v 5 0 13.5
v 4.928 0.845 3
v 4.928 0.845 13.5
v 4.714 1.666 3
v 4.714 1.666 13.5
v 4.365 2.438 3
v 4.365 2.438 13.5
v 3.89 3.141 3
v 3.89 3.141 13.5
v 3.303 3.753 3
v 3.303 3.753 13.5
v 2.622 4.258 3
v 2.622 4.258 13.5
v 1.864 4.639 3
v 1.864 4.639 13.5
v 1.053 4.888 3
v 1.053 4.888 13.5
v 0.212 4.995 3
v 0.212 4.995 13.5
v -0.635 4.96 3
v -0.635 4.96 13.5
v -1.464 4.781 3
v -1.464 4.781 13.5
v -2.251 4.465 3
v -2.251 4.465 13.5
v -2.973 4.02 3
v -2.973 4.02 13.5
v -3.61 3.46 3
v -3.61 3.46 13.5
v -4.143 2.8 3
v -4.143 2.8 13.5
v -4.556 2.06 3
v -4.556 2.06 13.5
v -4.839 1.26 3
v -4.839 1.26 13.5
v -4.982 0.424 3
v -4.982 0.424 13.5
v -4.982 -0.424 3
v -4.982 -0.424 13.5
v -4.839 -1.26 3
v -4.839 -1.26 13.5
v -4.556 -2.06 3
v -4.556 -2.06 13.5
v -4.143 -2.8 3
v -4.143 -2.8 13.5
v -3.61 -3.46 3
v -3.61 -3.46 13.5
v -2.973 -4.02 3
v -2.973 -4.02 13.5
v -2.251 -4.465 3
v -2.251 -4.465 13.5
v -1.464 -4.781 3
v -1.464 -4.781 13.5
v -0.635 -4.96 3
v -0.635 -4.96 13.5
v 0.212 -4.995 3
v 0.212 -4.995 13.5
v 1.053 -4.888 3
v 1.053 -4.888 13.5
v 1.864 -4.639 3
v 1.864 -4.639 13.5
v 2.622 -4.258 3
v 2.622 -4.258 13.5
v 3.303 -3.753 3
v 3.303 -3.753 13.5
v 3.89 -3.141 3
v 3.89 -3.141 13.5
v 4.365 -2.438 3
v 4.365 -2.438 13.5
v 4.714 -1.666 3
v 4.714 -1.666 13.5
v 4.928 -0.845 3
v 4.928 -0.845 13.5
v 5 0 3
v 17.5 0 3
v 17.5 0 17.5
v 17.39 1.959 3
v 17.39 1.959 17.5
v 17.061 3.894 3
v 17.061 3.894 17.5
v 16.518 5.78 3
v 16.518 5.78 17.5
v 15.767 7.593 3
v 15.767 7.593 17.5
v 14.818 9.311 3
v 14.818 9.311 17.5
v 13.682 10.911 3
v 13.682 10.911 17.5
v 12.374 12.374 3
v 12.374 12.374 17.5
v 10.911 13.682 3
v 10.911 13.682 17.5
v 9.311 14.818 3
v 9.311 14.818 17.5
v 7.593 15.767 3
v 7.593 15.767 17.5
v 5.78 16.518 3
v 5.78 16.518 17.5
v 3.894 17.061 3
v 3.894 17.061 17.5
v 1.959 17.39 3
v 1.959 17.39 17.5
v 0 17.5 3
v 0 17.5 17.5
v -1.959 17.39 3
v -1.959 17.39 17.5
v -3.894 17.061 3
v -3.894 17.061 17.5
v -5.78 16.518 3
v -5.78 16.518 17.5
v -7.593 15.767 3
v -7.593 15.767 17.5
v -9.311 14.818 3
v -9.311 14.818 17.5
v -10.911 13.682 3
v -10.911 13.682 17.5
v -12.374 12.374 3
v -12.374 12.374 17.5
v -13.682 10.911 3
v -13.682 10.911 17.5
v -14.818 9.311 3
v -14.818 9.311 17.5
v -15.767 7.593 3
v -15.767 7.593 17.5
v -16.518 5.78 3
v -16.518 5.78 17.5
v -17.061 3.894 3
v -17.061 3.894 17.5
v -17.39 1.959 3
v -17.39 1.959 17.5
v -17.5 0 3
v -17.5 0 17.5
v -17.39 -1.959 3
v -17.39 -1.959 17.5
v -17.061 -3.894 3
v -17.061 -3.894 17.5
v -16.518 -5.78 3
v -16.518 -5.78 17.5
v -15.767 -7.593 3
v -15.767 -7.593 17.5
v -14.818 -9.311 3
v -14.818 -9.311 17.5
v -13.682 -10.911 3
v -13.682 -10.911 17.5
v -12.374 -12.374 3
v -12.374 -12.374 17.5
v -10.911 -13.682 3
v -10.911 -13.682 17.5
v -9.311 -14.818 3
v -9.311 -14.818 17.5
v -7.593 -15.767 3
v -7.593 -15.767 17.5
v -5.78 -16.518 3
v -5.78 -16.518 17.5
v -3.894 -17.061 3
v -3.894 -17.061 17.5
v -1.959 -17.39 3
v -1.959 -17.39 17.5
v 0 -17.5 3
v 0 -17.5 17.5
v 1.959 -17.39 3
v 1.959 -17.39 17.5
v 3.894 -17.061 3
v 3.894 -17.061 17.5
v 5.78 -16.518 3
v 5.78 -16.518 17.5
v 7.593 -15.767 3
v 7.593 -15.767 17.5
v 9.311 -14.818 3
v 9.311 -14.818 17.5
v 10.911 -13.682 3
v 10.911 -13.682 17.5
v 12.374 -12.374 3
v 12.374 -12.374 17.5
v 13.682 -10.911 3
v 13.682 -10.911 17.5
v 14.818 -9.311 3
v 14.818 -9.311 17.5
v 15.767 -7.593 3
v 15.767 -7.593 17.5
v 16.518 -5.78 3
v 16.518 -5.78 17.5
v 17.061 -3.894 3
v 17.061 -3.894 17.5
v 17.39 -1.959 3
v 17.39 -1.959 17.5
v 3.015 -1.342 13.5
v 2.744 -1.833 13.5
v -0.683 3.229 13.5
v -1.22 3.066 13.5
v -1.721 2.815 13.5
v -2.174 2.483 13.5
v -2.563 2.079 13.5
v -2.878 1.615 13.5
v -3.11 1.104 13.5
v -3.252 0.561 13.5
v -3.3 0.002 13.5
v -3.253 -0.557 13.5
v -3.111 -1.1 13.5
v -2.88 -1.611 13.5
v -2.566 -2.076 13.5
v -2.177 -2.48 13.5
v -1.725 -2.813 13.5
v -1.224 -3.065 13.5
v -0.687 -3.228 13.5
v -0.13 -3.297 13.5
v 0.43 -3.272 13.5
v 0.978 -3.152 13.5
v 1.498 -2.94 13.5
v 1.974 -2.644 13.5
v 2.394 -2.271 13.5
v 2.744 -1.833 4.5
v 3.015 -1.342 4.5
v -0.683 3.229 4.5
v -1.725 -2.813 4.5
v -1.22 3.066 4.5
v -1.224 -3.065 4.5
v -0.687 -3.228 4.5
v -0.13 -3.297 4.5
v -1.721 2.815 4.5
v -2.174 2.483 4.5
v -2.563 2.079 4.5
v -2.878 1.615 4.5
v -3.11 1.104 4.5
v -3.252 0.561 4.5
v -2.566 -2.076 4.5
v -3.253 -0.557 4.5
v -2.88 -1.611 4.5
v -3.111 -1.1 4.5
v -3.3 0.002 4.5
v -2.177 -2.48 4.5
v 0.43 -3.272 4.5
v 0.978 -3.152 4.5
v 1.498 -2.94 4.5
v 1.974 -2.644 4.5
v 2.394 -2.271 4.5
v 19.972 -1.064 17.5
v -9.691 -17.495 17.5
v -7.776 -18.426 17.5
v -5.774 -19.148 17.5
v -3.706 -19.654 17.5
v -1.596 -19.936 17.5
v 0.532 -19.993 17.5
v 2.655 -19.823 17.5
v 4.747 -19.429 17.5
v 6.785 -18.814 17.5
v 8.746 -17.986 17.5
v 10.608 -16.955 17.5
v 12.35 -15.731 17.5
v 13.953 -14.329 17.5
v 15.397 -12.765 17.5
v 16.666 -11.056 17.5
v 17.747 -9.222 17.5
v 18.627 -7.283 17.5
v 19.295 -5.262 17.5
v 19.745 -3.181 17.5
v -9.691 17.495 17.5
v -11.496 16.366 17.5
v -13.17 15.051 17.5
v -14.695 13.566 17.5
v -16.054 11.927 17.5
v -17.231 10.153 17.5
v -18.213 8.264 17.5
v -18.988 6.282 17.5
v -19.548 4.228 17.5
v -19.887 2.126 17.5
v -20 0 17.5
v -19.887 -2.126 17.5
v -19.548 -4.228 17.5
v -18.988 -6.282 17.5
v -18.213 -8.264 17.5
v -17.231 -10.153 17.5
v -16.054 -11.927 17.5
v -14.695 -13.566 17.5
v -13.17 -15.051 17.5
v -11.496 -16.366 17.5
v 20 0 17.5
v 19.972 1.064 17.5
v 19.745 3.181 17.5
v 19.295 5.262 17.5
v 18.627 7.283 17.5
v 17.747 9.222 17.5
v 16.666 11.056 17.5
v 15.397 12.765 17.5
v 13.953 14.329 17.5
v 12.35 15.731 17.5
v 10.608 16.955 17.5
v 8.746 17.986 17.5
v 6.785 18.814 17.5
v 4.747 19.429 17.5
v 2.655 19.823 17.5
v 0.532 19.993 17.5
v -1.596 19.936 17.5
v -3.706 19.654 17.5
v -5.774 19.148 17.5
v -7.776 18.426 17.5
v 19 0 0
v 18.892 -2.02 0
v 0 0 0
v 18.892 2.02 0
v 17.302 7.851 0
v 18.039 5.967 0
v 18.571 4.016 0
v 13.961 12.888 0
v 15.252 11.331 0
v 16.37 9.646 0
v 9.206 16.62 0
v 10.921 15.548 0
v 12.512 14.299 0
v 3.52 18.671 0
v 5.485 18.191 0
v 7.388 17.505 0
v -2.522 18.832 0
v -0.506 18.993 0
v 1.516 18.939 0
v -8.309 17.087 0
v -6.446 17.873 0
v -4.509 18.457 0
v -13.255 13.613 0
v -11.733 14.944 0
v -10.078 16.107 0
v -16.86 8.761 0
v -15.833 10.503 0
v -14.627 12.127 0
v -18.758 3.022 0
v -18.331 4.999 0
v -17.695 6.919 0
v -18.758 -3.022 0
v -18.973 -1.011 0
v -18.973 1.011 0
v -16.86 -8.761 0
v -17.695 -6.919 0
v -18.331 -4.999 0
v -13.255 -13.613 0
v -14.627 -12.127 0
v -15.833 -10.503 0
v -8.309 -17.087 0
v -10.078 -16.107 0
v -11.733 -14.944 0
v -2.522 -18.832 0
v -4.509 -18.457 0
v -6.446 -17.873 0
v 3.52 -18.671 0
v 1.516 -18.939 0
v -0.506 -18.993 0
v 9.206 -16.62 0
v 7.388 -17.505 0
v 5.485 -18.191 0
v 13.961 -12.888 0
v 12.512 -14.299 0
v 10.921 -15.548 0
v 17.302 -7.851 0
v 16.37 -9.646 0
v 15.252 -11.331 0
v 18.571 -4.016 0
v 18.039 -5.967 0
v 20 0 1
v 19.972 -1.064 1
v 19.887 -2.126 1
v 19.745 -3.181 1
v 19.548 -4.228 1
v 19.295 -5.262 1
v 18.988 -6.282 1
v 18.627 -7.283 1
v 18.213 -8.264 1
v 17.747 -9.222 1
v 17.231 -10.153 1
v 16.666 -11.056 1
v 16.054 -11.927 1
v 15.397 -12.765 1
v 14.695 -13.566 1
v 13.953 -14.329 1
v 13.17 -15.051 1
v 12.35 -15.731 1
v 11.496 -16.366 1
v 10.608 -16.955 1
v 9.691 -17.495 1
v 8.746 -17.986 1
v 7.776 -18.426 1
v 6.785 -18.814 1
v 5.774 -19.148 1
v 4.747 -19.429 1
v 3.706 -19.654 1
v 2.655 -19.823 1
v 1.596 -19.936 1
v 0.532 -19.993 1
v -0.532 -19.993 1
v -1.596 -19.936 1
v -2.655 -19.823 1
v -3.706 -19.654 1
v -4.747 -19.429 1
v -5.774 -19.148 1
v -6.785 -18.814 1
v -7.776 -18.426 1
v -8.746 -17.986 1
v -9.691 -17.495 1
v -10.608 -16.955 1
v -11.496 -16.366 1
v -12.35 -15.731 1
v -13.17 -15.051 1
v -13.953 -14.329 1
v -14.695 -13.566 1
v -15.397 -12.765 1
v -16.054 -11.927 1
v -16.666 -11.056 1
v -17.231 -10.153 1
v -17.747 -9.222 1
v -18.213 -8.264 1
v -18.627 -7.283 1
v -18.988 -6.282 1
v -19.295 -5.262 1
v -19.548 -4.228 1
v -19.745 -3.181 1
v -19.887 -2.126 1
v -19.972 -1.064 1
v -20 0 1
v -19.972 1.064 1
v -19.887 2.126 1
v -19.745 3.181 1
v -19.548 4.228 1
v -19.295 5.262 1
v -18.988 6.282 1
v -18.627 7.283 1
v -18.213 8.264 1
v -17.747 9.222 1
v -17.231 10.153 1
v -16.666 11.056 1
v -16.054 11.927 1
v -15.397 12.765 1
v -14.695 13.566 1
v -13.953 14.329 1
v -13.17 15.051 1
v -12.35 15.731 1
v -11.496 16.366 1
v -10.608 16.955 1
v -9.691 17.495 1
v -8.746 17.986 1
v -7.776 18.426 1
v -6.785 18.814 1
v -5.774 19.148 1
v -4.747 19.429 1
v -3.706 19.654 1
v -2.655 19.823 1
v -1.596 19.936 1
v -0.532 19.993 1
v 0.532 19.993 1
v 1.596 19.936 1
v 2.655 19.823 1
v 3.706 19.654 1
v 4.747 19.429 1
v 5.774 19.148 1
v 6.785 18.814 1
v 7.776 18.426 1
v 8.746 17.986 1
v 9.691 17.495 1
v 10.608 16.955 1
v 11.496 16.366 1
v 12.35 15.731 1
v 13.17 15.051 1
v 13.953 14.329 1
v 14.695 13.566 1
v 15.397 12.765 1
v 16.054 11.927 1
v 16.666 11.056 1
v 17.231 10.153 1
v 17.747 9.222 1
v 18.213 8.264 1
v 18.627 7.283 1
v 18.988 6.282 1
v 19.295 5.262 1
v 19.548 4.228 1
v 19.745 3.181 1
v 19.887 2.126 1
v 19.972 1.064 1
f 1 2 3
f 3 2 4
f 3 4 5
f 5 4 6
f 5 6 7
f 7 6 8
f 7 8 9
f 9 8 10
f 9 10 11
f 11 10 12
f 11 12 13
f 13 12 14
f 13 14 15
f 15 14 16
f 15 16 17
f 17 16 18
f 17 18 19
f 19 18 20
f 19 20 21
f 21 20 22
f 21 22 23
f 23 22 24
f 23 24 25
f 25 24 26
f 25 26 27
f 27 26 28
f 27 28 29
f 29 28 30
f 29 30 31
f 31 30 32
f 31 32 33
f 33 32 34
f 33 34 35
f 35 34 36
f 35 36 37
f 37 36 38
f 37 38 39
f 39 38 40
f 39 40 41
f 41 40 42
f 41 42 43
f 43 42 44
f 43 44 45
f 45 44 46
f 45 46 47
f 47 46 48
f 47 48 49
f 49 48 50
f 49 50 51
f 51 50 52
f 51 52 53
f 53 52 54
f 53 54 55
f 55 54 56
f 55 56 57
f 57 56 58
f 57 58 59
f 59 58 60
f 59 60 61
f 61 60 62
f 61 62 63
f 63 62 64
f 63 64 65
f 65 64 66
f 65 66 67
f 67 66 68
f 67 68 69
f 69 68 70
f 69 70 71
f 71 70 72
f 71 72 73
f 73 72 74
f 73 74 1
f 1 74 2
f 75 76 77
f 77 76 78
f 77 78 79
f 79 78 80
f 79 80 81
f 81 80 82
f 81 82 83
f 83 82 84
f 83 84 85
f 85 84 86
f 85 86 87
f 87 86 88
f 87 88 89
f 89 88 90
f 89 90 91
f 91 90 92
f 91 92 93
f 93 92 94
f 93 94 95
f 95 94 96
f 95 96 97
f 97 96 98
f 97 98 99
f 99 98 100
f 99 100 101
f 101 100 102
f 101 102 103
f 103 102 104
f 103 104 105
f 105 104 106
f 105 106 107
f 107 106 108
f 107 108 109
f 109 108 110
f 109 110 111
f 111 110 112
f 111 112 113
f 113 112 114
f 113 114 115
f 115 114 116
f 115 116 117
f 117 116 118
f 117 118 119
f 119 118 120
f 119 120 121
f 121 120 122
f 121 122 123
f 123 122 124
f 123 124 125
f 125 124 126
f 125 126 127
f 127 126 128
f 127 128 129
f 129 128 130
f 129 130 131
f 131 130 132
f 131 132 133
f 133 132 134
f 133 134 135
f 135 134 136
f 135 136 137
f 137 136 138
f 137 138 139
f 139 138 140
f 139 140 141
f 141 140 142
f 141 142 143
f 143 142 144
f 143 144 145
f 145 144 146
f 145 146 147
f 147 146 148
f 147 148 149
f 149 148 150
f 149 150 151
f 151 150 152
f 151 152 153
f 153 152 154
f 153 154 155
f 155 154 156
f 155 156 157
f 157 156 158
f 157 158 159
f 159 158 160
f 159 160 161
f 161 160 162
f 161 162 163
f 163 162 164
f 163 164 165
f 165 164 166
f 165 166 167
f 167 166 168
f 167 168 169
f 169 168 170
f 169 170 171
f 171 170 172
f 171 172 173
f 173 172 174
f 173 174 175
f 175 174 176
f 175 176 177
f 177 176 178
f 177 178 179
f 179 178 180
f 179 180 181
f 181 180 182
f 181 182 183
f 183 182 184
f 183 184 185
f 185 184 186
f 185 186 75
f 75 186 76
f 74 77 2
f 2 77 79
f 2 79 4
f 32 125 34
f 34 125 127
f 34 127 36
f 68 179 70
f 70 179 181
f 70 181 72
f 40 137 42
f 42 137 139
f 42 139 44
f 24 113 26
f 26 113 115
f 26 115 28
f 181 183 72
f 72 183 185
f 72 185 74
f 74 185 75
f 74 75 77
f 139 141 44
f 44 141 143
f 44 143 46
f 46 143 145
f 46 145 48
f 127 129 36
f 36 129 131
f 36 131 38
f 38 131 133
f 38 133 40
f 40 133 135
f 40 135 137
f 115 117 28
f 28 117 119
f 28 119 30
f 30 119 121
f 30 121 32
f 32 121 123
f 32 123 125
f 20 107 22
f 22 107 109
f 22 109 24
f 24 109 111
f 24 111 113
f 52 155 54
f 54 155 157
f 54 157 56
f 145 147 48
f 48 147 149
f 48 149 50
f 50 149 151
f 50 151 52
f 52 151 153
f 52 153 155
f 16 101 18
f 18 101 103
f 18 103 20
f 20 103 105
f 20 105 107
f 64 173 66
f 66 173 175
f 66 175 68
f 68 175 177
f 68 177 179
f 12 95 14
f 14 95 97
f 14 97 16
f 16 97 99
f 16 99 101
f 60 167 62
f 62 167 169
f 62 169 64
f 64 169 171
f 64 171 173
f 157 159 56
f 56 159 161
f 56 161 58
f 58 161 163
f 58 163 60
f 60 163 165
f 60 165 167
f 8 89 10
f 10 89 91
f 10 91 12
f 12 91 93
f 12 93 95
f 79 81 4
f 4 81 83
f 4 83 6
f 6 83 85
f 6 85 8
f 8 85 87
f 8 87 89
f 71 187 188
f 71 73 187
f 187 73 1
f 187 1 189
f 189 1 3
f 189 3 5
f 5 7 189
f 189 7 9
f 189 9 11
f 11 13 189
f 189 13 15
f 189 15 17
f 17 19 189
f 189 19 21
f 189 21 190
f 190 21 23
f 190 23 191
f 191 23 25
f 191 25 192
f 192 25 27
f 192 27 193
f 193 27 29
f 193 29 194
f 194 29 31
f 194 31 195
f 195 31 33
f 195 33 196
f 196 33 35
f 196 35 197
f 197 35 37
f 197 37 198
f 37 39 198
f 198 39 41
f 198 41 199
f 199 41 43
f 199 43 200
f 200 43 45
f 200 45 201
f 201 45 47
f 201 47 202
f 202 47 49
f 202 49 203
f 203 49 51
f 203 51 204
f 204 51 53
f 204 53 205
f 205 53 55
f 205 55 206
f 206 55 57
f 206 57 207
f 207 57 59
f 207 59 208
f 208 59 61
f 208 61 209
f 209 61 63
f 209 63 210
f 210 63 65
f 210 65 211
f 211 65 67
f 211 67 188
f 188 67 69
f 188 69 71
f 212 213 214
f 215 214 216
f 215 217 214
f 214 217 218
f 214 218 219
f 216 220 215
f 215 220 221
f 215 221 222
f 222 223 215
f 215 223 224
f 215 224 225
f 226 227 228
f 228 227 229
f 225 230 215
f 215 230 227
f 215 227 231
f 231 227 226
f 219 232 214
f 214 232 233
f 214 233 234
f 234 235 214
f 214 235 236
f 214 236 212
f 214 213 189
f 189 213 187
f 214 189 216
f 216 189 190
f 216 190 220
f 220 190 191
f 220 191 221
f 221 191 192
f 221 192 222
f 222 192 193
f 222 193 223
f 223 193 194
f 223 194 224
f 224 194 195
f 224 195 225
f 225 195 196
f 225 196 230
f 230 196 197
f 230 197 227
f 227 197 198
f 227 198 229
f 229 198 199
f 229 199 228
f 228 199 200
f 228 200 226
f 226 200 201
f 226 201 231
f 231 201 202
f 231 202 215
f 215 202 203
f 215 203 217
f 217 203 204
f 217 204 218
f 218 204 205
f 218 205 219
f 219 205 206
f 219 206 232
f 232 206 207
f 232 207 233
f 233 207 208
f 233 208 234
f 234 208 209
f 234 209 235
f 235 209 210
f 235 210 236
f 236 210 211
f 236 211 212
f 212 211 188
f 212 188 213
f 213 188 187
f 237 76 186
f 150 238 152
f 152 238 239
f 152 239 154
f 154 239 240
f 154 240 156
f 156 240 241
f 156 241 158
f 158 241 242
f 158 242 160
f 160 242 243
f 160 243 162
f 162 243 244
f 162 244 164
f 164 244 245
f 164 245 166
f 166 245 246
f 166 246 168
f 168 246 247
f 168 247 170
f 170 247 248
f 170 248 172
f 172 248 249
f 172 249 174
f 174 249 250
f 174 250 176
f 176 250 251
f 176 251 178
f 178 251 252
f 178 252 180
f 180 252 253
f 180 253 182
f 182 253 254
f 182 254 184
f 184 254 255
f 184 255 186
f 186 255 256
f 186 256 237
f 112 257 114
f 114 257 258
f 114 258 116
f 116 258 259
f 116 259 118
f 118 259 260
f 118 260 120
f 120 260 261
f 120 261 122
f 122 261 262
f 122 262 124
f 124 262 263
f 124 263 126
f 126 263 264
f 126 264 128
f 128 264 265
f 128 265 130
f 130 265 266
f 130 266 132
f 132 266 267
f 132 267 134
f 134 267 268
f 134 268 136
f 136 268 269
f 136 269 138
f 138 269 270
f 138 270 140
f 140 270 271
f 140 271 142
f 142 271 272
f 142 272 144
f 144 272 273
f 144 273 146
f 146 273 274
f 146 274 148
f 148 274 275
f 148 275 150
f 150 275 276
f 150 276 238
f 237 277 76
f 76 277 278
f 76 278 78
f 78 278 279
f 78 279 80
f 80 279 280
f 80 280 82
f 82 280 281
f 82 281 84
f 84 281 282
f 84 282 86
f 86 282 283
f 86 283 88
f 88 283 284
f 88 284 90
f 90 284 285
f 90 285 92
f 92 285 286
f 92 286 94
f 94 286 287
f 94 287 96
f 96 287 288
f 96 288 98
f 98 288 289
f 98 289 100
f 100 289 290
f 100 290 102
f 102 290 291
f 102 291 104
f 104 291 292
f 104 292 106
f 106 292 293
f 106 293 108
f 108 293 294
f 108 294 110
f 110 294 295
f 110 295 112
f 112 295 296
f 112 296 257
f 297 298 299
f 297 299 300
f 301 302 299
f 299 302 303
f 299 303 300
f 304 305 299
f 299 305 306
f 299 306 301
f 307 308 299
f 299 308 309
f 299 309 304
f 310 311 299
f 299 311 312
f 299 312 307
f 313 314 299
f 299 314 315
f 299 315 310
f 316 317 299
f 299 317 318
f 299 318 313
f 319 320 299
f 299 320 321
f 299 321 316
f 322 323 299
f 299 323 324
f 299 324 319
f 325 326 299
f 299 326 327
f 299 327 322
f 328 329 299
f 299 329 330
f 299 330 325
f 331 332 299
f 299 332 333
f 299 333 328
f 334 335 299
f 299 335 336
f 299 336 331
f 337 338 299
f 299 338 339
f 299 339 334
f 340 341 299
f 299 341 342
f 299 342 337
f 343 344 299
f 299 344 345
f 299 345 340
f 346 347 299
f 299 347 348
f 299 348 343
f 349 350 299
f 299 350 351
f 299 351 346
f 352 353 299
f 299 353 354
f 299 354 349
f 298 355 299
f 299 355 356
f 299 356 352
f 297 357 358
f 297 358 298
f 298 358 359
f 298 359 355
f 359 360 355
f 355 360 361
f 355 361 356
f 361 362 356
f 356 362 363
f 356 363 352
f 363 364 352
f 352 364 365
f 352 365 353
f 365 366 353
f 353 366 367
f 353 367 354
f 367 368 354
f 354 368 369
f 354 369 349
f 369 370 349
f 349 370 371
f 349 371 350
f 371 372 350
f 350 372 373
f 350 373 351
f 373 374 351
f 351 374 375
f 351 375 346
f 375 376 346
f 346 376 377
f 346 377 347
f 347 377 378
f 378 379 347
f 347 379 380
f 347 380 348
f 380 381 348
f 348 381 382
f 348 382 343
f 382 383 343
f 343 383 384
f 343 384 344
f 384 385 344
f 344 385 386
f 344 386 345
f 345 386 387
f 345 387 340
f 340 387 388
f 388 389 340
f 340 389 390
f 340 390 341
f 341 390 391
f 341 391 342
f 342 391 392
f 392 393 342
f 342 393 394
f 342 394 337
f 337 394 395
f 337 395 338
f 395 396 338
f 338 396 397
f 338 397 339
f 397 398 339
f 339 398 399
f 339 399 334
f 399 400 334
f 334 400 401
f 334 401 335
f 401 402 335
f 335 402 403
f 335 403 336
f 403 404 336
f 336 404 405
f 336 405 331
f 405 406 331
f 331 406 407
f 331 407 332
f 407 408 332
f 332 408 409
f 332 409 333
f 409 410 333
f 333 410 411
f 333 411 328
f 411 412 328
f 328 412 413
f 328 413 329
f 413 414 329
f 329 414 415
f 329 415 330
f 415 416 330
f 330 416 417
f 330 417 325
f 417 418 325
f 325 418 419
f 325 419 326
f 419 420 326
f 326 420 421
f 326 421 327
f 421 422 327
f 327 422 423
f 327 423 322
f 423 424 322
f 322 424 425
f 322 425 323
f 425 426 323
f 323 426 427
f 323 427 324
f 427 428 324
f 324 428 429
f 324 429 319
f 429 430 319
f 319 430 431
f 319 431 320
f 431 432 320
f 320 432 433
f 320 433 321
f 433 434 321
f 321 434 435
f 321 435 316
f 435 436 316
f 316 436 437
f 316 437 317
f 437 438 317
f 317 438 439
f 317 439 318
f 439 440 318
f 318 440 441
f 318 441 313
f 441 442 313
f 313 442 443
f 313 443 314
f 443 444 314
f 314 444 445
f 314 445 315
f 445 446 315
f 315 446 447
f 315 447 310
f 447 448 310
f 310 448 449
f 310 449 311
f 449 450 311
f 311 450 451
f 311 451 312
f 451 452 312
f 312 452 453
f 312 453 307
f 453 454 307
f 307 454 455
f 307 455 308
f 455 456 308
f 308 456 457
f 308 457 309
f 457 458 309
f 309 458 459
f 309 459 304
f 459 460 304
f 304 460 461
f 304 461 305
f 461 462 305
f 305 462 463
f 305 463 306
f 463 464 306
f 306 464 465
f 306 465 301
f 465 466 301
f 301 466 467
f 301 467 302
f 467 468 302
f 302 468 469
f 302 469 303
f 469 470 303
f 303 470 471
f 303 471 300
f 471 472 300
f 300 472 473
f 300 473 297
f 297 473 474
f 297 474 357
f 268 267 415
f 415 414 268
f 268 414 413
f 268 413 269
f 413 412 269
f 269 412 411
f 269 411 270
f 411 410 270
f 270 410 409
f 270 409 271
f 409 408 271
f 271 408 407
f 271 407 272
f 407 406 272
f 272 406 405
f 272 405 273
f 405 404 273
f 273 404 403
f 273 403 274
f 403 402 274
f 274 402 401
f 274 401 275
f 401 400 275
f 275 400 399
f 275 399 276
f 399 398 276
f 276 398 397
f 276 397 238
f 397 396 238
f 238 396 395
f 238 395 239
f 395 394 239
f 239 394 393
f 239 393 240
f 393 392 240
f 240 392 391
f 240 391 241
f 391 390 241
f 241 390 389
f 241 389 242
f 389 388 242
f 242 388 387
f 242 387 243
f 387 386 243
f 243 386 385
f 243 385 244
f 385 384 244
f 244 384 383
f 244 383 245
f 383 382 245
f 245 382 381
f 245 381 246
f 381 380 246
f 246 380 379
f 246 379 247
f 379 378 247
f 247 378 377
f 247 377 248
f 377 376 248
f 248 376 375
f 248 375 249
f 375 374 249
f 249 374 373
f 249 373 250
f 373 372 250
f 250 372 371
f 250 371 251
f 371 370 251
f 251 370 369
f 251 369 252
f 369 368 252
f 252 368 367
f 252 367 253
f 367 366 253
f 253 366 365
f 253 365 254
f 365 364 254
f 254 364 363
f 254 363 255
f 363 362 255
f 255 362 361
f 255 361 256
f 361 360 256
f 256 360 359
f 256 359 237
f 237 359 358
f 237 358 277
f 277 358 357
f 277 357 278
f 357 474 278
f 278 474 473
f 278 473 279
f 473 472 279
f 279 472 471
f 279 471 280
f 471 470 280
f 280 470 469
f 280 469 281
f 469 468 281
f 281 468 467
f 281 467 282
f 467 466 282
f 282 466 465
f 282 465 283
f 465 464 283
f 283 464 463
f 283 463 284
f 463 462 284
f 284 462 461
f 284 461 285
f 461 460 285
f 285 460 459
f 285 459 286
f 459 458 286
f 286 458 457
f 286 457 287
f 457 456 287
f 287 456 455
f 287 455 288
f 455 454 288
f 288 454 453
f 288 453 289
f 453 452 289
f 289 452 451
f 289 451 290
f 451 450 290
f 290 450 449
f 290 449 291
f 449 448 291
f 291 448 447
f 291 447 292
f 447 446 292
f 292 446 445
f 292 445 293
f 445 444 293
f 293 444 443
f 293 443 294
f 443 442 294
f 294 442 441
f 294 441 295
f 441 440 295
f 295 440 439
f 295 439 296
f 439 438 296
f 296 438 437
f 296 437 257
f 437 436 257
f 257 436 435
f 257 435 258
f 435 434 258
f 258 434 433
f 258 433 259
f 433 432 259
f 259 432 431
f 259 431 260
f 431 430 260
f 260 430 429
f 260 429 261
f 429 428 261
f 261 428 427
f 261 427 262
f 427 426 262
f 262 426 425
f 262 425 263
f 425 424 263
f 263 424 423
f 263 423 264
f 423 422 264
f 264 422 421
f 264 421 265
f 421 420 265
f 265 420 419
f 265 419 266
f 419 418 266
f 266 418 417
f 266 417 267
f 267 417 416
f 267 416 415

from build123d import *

# Parameters (mm, degrees)
SKETCH1_R           = 20
BOSS_EXTRUDE1_DEPTH = 15
SKETCH2_R           = 17.5
SKETCH2_R_2         = 5
CUT_EXTRUDE1_DEPTH  = 12
CUT_EXTRUDE2_DEPTH  = 10.5
SKETCH4_R           = 5
CUT_EXTRUDE3_DEPTH  = 1.5
CHAMFER1_SIZE       = 1
SKETCH7_R           = 20
SKETCH7_R_2         = 17.5
BOSS_EXTRUDE2_DEPTH = 2.5


with BuildPart() as part:
    # Sketch1 → Boss-Extrude1 (new body)
    with BuildSketch(Plane.XY):
        Circle(SKETCH1_R)
    extrude(amount=BOSS_EXTRUDE1_DEPTH)

    # Sketch2 → Cut-Extrude1 (cut)
    with BuildSketch(Plane.XY.offset(15)):
        Circle(SKETCH2_R)
        Circle(SKETCH2_R_2, mode=Mode.SUBTRACT)
    extrude(amount=-CUT_EXTRUDE1_DEPTH, mode=Mode.SUBTRACT)

    # Sketch3 → Cut-Extrude2 (cut)
    with BuildSketch(Plane.XY.offset(15)):
        with BuildLine():
            Line((-0.682606966, 3.228629389), (3.014916342, -1.341744927))
            ThreePointArc((3.014916342, -1.341744927), (-2.565540314, -2.075572908), (-0.682606966, 3.228629389))
        make_face()
    extrude(amount=-CUT_EXTRUDE2_DEPTH, mode=Mode.SUBTRACT)

    # Sketch4 → Cut-Extrude3 (cut)
    with BuildSketch(Plane.XY.offset(15)):
        Circle(SKETCH4_R)
    extrude(amount=-CUT_EXTRUDE3_DEPTH, mode=Mode.SUBTRACT)

    # Chamfer1
    chamfer1_edges = [part.edges().sort_by_distance(p)[0] for p in [
        (-20, 0, 0),
    ]]
    chamfer(chamfer1_edges, length=CHAMFER1_SIZE)

    # Sketch7 → Boss-Extrude2 (add)
    with BuildSketch(Plane.XY.offset(15)):
        Circle(SKETCH7_R)
        Circle(SKETCH7_R_2, mode=Mode.SUBTRACT)
    extrude(amount=BOSS_EXTRUDE2_DEPTH)


solid = part.part
